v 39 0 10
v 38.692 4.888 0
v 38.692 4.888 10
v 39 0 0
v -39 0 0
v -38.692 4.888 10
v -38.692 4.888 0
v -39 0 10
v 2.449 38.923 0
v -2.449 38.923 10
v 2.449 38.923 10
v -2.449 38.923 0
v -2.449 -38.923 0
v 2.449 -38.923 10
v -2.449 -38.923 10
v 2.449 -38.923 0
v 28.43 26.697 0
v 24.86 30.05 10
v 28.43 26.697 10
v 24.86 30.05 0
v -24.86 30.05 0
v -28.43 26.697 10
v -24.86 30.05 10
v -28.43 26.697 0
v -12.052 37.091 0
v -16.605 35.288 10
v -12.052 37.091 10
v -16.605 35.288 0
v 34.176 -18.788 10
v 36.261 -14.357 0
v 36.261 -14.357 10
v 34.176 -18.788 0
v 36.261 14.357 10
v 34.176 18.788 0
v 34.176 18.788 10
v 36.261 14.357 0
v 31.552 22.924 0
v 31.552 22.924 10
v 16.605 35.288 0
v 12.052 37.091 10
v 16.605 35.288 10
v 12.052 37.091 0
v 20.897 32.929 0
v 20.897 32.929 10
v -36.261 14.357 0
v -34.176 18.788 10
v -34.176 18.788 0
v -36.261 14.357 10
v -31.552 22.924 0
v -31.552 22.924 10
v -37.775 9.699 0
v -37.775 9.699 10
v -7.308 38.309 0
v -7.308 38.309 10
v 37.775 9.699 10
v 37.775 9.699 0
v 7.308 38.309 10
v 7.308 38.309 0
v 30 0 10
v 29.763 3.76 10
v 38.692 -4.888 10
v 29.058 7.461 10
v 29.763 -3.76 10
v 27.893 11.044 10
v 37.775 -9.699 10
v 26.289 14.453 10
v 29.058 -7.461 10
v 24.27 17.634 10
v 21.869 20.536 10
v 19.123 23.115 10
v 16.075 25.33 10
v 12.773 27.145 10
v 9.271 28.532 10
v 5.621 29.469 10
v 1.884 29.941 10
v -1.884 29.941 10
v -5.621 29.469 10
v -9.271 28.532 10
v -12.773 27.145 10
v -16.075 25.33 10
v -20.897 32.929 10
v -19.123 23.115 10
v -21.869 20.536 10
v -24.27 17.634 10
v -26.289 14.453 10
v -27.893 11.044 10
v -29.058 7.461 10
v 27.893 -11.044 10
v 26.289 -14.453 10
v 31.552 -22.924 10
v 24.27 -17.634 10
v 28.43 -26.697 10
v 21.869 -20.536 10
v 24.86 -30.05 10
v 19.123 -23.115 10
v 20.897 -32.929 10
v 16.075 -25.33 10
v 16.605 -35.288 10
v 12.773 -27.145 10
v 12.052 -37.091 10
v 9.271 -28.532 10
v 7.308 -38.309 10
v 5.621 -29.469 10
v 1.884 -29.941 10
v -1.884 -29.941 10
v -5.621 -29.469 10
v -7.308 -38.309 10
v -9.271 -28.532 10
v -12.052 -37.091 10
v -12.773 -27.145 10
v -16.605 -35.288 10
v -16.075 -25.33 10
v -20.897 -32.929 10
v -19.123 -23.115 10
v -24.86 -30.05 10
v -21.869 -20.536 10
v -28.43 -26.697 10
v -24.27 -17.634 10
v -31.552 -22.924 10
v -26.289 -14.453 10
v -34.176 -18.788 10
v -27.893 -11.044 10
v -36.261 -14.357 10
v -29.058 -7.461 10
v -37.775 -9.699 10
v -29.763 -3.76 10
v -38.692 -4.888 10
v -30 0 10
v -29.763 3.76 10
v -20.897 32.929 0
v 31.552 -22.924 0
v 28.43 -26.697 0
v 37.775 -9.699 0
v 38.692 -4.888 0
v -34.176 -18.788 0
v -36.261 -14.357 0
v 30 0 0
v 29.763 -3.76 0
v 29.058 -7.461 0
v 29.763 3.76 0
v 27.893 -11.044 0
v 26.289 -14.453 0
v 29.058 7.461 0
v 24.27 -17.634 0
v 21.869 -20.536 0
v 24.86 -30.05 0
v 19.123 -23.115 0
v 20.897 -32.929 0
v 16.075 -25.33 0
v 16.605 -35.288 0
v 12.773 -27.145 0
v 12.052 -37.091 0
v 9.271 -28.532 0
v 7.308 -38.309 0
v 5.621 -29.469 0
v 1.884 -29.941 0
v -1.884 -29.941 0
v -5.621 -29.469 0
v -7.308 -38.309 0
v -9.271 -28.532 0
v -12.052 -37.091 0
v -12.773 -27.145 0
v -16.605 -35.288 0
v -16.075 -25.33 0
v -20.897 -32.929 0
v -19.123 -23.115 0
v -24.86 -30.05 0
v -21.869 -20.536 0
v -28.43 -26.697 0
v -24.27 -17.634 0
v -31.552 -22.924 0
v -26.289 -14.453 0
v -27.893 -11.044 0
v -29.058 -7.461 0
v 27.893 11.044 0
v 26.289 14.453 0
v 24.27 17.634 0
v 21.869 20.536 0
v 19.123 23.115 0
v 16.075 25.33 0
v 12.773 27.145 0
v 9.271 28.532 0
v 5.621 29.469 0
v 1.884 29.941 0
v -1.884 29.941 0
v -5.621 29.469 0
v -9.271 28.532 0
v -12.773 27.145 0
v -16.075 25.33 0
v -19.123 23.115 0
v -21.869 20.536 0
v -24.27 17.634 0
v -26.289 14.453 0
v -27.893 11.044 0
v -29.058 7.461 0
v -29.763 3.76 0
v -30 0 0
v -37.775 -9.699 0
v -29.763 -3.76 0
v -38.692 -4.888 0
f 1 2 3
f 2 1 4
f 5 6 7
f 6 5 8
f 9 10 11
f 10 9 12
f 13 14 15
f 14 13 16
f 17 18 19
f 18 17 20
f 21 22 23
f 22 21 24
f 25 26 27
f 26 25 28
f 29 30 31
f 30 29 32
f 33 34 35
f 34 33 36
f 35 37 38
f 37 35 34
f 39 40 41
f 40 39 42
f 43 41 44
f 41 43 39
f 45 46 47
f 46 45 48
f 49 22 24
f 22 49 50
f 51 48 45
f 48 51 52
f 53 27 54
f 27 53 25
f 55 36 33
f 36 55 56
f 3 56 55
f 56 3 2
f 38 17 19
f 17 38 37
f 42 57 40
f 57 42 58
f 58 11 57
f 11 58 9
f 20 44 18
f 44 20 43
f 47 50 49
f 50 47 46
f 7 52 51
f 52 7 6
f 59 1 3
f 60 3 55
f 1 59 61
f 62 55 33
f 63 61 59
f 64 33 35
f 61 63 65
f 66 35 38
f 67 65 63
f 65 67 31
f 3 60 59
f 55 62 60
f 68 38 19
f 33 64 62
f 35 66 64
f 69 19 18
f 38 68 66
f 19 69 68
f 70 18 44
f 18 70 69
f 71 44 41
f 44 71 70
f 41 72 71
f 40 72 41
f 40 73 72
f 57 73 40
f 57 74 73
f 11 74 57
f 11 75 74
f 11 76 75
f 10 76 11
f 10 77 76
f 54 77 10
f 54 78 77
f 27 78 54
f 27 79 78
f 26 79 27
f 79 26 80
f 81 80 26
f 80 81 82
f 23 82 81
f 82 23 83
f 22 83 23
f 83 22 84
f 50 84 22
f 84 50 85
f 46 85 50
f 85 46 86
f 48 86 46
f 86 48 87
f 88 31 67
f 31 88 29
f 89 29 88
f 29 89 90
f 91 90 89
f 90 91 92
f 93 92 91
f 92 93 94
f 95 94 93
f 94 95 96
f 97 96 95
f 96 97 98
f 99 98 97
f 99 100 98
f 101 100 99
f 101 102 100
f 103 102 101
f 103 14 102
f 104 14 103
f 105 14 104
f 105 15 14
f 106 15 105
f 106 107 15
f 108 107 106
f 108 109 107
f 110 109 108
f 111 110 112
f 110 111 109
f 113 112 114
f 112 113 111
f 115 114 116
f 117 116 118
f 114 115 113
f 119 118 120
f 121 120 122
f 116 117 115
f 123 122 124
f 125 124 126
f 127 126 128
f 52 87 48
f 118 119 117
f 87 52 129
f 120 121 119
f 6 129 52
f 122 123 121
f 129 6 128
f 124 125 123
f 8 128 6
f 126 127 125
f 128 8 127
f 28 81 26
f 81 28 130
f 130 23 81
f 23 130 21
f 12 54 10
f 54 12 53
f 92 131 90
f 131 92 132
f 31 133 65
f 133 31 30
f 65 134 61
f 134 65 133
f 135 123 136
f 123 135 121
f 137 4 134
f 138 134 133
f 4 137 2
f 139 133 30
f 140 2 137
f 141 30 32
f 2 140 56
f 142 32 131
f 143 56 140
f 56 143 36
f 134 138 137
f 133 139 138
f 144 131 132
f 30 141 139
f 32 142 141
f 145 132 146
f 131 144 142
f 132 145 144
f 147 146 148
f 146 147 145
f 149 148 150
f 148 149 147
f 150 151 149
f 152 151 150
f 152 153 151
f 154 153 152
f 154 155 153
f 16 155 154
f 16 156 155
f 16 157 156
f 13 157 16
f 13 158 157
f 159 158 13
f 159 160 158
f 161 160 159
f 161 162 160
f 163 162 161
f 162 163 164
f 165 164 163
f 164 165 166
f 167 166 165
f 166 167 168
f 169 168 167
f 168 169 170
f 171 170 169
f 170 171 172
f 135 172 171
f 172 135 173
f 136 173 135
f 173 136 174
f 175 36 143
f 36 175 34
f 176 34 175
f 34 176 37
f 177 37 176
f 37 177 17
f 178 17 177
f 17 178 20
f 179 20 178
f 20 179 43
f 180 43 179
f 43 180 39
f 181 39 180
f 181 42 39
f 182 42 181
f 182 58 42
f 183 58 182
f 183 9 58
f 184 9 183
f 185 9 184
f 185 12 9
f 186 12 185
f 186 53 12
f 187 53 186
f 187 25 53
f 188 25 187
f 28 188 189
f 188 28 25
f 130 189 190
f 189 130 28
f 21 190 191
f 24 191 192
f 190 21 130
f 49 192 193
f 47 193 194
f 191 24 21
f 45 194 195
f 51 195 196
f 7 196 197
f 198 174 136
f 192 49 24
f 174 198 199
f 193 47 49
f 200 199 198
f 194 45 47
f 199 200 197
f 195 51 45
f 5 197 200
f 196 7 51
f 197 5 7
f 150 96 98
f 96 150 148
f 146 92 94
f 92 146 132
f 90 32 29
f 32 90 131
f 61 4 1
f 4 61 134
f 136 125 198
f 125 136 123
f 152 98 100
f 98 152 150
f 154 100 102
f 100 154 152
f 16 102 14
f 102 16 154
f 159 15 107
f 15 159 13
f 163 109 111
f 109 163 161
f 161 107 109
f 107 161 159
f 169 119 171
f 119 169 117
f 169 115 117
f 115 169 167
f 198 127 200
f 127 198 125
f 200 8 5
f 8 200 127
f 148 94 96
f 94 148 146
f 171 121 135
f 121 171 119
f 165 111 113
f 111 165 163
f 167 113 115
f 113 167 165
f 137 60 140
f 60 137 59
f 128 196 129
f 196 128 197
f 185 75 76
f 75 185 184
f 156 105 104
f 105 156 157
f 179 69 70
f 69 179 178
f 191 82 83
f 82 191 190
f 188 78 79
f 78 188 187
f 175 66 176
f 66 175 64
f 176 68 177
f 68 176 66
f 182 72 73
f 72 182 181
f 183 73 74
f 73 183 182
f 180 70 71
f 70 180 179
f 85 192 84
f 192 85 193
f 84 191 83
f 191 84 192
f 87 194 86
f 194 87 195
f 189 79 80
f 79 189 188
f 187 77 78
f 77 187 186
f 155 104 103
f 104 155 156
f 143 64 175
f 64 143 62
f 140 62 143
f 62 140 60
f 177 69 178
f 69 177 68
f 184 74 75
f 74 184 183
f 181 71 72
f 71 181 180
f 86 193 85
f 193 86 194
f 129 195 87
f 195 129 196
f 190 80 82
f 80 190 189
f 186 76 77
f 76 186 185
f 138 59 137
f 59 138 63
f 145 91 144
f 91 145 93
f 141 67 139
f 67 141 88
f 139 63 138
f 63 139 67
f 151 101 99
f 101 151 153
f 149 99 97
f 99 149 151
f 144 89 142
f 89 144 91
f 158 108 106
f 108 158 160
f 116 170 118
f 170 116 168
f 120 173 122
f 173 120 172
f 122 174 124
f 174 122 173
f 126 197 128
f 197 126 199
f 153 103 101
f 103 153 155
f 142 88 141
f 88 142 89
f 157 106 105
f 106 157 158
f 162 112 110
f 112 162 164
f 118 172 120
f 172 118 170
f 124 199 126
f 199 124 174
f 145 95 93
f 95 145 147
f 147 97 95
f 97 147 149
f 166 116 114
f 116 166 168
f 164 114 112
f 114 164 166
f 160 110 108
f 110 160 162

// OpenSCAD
$fn = 50;


difference() {
	union() {
		translate(v = [0, 0, 0]) {
			rotate(a = [0, 0, 0]) {
				cylinder(h = 10, r = 39.0000000000);
			}
		}
	}
	union() {
		translate(v = [0, 0, 0]) {
			rotate(a = [0, 0, 0]) {
				cylinder(h = 10, r = 30.0000000000);
			}
		}
	}
}
